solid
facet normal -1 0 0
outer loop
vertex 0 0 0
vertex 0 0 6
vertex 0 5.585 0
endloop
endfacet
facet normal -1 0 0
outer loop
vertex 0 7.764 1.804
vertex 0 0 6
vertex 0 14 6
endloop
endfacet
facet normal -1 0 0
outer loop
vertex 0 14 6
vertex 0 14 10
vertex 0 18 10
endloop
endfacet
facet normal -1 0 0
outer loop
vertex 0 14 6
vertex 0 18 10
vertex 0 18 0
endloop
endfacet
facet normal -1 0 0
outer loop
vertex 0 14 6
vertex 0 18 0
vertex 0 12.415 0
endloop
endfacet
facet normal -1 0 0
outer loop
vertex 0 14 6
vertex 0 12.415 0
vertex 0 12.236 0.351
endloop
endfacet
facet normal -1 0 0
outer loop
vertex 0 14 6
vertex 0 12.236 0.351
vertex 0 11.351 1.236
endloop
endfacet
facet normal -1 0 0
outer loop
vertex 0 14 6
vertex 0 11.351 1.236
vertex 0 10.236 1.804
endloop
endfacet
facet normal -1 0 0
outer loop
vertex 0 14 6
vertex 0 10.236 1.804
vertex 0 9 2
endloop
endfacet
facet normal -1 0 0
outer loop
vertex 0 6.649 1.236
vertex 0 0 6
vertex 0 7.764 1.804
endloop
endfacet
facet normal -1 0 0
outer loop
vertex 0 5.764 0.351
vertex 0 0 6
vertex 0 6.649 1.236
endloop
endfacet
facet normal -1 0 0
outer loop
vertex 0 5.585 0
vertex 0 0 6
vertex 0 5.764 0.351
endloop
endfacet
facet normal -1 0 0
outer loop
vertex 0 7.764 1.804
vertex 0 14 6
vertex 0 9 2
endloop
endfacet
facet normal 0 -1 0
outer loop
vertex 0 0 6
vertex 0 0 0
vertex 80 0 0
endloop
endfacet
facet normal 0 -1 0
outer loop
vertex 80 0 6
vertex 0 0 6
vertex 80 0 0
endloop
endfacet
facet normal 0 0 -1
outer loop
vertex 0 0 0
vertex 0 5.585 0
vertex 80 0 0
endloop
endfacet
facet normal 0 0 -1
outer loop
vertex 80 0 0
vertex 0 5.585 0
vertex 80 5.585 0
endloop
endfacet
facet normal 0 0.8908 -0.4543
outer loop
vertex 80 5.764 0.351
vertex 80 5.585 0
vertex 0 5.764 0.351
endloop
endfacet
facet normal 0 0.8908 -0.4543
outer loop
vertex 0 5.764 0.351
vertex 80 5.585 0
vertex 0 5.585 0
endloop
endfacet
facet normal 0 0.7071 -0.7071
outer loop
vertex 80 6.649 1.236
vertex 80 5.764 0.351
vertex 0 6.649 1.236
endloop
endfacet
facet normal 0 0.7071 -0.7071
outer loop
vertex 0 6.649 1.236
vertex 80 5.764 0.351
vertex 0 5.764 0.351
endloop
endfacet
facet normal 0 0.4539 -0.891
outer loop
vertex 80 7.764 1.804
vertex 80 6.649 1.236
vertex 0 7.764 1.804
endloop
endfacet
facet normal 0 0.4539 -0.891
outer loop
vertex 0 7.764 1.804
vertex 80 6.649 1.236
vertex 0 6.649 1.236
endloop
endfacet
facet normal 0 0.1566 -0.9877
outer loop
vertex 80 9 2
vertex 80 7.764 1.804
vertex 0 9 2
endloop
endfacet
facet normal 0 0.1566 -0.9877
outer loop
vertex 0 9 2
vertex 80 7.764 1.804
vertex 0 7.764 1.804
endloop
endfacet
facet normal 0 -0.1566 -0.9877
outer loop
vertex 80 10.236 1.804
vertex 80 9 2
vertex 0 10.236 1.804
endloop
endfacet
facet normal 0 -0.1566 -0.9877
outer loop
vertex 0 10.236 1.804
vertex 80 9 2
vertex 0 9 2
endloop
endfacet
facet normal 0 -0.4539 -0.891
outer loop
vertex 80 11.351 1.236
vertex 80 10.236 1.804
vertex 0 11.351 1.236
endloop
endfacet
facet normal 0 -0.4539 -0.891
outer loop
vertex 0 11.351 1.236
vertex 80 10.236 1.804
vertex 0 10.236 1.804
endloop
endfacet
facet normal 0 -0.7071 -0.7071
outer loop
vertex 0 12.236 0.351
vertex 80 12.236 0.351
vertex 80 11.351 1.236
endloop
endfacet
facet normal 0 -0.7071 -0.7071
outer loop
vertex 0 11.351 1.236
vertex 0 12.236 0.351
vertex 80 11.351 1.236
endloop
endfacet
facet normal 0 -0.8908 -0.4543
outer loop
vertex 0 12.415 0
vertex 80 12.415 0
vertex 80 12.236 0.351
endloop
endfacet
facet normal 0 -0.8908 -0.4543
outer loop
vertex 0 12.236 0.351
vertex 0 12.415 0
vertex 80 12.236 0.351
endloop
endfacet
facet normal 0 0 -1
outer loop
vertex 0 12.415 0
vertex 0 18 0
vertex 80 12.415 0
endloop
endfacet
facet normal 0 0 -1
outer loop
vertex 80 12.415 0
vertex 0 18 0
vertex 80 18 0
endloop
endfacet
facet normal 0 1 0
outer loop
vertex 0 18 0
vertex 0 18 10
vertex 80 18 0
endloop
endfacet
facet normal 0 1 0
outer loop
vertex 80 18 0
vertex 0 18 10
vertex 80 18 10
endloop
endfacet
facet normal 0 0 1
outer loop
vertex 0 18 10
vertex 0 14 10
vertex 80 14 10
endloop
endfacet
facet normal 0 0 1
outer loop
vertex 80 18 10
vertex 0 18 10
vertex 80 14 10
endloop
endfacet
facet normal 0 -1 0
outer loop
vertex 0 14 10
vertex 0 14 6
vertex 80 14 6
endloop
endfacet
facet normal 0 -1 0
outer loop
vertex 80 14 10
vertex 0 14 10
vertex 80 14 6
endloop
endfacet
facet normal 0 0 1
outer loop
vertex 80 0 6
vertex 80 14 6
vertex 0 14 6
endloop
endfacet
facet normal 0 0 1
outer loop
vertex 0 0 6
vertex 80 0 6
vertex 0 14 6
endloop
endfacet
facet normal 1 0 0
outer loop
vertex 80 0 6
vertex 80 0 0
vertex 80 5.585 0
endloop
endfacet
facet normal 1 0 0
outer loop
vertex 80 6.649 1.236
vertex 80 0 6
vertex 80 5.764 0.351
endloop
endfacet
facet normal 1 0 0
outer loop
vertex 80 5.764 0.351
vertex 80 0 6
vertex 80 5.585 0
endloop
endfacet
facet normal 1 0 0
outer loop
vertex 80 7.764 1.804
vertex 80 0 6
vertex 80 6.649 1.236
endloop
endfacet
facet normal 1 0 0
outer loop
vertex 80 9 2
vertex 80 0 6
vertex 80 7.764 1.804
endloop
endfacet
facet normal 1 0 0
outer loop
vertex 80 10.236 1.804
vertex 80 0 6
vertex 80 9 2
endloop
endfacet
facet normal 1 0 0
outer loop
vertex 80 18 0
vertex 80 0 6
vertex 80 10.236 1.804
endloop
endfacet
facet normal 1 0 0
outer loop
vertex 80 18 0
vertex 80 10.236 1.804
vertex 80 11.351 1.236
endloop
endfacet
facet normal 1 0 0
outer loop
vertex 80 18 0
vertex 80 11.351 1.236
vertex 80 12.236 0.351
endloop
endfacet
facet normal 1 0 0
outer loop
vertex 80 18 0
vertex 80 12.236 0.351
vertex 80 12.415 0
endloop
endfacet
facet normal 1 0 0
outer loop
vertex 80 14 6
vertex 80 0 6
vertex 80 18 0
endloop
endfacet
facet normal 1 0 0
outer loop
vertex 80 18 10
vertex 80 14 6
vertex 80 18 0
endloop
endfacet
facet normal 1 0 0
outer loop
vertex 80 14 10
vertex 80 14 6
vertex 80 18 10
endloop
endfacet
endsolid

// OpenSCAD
union() {
	translate([0,14,6])cube([80,4,4]);
	difference() {
		cube([80,18,6]);
		translate([-1,9,-2]) rotate([0,90,0])cylinder(82,r=4,$fn=20);
	}
}
